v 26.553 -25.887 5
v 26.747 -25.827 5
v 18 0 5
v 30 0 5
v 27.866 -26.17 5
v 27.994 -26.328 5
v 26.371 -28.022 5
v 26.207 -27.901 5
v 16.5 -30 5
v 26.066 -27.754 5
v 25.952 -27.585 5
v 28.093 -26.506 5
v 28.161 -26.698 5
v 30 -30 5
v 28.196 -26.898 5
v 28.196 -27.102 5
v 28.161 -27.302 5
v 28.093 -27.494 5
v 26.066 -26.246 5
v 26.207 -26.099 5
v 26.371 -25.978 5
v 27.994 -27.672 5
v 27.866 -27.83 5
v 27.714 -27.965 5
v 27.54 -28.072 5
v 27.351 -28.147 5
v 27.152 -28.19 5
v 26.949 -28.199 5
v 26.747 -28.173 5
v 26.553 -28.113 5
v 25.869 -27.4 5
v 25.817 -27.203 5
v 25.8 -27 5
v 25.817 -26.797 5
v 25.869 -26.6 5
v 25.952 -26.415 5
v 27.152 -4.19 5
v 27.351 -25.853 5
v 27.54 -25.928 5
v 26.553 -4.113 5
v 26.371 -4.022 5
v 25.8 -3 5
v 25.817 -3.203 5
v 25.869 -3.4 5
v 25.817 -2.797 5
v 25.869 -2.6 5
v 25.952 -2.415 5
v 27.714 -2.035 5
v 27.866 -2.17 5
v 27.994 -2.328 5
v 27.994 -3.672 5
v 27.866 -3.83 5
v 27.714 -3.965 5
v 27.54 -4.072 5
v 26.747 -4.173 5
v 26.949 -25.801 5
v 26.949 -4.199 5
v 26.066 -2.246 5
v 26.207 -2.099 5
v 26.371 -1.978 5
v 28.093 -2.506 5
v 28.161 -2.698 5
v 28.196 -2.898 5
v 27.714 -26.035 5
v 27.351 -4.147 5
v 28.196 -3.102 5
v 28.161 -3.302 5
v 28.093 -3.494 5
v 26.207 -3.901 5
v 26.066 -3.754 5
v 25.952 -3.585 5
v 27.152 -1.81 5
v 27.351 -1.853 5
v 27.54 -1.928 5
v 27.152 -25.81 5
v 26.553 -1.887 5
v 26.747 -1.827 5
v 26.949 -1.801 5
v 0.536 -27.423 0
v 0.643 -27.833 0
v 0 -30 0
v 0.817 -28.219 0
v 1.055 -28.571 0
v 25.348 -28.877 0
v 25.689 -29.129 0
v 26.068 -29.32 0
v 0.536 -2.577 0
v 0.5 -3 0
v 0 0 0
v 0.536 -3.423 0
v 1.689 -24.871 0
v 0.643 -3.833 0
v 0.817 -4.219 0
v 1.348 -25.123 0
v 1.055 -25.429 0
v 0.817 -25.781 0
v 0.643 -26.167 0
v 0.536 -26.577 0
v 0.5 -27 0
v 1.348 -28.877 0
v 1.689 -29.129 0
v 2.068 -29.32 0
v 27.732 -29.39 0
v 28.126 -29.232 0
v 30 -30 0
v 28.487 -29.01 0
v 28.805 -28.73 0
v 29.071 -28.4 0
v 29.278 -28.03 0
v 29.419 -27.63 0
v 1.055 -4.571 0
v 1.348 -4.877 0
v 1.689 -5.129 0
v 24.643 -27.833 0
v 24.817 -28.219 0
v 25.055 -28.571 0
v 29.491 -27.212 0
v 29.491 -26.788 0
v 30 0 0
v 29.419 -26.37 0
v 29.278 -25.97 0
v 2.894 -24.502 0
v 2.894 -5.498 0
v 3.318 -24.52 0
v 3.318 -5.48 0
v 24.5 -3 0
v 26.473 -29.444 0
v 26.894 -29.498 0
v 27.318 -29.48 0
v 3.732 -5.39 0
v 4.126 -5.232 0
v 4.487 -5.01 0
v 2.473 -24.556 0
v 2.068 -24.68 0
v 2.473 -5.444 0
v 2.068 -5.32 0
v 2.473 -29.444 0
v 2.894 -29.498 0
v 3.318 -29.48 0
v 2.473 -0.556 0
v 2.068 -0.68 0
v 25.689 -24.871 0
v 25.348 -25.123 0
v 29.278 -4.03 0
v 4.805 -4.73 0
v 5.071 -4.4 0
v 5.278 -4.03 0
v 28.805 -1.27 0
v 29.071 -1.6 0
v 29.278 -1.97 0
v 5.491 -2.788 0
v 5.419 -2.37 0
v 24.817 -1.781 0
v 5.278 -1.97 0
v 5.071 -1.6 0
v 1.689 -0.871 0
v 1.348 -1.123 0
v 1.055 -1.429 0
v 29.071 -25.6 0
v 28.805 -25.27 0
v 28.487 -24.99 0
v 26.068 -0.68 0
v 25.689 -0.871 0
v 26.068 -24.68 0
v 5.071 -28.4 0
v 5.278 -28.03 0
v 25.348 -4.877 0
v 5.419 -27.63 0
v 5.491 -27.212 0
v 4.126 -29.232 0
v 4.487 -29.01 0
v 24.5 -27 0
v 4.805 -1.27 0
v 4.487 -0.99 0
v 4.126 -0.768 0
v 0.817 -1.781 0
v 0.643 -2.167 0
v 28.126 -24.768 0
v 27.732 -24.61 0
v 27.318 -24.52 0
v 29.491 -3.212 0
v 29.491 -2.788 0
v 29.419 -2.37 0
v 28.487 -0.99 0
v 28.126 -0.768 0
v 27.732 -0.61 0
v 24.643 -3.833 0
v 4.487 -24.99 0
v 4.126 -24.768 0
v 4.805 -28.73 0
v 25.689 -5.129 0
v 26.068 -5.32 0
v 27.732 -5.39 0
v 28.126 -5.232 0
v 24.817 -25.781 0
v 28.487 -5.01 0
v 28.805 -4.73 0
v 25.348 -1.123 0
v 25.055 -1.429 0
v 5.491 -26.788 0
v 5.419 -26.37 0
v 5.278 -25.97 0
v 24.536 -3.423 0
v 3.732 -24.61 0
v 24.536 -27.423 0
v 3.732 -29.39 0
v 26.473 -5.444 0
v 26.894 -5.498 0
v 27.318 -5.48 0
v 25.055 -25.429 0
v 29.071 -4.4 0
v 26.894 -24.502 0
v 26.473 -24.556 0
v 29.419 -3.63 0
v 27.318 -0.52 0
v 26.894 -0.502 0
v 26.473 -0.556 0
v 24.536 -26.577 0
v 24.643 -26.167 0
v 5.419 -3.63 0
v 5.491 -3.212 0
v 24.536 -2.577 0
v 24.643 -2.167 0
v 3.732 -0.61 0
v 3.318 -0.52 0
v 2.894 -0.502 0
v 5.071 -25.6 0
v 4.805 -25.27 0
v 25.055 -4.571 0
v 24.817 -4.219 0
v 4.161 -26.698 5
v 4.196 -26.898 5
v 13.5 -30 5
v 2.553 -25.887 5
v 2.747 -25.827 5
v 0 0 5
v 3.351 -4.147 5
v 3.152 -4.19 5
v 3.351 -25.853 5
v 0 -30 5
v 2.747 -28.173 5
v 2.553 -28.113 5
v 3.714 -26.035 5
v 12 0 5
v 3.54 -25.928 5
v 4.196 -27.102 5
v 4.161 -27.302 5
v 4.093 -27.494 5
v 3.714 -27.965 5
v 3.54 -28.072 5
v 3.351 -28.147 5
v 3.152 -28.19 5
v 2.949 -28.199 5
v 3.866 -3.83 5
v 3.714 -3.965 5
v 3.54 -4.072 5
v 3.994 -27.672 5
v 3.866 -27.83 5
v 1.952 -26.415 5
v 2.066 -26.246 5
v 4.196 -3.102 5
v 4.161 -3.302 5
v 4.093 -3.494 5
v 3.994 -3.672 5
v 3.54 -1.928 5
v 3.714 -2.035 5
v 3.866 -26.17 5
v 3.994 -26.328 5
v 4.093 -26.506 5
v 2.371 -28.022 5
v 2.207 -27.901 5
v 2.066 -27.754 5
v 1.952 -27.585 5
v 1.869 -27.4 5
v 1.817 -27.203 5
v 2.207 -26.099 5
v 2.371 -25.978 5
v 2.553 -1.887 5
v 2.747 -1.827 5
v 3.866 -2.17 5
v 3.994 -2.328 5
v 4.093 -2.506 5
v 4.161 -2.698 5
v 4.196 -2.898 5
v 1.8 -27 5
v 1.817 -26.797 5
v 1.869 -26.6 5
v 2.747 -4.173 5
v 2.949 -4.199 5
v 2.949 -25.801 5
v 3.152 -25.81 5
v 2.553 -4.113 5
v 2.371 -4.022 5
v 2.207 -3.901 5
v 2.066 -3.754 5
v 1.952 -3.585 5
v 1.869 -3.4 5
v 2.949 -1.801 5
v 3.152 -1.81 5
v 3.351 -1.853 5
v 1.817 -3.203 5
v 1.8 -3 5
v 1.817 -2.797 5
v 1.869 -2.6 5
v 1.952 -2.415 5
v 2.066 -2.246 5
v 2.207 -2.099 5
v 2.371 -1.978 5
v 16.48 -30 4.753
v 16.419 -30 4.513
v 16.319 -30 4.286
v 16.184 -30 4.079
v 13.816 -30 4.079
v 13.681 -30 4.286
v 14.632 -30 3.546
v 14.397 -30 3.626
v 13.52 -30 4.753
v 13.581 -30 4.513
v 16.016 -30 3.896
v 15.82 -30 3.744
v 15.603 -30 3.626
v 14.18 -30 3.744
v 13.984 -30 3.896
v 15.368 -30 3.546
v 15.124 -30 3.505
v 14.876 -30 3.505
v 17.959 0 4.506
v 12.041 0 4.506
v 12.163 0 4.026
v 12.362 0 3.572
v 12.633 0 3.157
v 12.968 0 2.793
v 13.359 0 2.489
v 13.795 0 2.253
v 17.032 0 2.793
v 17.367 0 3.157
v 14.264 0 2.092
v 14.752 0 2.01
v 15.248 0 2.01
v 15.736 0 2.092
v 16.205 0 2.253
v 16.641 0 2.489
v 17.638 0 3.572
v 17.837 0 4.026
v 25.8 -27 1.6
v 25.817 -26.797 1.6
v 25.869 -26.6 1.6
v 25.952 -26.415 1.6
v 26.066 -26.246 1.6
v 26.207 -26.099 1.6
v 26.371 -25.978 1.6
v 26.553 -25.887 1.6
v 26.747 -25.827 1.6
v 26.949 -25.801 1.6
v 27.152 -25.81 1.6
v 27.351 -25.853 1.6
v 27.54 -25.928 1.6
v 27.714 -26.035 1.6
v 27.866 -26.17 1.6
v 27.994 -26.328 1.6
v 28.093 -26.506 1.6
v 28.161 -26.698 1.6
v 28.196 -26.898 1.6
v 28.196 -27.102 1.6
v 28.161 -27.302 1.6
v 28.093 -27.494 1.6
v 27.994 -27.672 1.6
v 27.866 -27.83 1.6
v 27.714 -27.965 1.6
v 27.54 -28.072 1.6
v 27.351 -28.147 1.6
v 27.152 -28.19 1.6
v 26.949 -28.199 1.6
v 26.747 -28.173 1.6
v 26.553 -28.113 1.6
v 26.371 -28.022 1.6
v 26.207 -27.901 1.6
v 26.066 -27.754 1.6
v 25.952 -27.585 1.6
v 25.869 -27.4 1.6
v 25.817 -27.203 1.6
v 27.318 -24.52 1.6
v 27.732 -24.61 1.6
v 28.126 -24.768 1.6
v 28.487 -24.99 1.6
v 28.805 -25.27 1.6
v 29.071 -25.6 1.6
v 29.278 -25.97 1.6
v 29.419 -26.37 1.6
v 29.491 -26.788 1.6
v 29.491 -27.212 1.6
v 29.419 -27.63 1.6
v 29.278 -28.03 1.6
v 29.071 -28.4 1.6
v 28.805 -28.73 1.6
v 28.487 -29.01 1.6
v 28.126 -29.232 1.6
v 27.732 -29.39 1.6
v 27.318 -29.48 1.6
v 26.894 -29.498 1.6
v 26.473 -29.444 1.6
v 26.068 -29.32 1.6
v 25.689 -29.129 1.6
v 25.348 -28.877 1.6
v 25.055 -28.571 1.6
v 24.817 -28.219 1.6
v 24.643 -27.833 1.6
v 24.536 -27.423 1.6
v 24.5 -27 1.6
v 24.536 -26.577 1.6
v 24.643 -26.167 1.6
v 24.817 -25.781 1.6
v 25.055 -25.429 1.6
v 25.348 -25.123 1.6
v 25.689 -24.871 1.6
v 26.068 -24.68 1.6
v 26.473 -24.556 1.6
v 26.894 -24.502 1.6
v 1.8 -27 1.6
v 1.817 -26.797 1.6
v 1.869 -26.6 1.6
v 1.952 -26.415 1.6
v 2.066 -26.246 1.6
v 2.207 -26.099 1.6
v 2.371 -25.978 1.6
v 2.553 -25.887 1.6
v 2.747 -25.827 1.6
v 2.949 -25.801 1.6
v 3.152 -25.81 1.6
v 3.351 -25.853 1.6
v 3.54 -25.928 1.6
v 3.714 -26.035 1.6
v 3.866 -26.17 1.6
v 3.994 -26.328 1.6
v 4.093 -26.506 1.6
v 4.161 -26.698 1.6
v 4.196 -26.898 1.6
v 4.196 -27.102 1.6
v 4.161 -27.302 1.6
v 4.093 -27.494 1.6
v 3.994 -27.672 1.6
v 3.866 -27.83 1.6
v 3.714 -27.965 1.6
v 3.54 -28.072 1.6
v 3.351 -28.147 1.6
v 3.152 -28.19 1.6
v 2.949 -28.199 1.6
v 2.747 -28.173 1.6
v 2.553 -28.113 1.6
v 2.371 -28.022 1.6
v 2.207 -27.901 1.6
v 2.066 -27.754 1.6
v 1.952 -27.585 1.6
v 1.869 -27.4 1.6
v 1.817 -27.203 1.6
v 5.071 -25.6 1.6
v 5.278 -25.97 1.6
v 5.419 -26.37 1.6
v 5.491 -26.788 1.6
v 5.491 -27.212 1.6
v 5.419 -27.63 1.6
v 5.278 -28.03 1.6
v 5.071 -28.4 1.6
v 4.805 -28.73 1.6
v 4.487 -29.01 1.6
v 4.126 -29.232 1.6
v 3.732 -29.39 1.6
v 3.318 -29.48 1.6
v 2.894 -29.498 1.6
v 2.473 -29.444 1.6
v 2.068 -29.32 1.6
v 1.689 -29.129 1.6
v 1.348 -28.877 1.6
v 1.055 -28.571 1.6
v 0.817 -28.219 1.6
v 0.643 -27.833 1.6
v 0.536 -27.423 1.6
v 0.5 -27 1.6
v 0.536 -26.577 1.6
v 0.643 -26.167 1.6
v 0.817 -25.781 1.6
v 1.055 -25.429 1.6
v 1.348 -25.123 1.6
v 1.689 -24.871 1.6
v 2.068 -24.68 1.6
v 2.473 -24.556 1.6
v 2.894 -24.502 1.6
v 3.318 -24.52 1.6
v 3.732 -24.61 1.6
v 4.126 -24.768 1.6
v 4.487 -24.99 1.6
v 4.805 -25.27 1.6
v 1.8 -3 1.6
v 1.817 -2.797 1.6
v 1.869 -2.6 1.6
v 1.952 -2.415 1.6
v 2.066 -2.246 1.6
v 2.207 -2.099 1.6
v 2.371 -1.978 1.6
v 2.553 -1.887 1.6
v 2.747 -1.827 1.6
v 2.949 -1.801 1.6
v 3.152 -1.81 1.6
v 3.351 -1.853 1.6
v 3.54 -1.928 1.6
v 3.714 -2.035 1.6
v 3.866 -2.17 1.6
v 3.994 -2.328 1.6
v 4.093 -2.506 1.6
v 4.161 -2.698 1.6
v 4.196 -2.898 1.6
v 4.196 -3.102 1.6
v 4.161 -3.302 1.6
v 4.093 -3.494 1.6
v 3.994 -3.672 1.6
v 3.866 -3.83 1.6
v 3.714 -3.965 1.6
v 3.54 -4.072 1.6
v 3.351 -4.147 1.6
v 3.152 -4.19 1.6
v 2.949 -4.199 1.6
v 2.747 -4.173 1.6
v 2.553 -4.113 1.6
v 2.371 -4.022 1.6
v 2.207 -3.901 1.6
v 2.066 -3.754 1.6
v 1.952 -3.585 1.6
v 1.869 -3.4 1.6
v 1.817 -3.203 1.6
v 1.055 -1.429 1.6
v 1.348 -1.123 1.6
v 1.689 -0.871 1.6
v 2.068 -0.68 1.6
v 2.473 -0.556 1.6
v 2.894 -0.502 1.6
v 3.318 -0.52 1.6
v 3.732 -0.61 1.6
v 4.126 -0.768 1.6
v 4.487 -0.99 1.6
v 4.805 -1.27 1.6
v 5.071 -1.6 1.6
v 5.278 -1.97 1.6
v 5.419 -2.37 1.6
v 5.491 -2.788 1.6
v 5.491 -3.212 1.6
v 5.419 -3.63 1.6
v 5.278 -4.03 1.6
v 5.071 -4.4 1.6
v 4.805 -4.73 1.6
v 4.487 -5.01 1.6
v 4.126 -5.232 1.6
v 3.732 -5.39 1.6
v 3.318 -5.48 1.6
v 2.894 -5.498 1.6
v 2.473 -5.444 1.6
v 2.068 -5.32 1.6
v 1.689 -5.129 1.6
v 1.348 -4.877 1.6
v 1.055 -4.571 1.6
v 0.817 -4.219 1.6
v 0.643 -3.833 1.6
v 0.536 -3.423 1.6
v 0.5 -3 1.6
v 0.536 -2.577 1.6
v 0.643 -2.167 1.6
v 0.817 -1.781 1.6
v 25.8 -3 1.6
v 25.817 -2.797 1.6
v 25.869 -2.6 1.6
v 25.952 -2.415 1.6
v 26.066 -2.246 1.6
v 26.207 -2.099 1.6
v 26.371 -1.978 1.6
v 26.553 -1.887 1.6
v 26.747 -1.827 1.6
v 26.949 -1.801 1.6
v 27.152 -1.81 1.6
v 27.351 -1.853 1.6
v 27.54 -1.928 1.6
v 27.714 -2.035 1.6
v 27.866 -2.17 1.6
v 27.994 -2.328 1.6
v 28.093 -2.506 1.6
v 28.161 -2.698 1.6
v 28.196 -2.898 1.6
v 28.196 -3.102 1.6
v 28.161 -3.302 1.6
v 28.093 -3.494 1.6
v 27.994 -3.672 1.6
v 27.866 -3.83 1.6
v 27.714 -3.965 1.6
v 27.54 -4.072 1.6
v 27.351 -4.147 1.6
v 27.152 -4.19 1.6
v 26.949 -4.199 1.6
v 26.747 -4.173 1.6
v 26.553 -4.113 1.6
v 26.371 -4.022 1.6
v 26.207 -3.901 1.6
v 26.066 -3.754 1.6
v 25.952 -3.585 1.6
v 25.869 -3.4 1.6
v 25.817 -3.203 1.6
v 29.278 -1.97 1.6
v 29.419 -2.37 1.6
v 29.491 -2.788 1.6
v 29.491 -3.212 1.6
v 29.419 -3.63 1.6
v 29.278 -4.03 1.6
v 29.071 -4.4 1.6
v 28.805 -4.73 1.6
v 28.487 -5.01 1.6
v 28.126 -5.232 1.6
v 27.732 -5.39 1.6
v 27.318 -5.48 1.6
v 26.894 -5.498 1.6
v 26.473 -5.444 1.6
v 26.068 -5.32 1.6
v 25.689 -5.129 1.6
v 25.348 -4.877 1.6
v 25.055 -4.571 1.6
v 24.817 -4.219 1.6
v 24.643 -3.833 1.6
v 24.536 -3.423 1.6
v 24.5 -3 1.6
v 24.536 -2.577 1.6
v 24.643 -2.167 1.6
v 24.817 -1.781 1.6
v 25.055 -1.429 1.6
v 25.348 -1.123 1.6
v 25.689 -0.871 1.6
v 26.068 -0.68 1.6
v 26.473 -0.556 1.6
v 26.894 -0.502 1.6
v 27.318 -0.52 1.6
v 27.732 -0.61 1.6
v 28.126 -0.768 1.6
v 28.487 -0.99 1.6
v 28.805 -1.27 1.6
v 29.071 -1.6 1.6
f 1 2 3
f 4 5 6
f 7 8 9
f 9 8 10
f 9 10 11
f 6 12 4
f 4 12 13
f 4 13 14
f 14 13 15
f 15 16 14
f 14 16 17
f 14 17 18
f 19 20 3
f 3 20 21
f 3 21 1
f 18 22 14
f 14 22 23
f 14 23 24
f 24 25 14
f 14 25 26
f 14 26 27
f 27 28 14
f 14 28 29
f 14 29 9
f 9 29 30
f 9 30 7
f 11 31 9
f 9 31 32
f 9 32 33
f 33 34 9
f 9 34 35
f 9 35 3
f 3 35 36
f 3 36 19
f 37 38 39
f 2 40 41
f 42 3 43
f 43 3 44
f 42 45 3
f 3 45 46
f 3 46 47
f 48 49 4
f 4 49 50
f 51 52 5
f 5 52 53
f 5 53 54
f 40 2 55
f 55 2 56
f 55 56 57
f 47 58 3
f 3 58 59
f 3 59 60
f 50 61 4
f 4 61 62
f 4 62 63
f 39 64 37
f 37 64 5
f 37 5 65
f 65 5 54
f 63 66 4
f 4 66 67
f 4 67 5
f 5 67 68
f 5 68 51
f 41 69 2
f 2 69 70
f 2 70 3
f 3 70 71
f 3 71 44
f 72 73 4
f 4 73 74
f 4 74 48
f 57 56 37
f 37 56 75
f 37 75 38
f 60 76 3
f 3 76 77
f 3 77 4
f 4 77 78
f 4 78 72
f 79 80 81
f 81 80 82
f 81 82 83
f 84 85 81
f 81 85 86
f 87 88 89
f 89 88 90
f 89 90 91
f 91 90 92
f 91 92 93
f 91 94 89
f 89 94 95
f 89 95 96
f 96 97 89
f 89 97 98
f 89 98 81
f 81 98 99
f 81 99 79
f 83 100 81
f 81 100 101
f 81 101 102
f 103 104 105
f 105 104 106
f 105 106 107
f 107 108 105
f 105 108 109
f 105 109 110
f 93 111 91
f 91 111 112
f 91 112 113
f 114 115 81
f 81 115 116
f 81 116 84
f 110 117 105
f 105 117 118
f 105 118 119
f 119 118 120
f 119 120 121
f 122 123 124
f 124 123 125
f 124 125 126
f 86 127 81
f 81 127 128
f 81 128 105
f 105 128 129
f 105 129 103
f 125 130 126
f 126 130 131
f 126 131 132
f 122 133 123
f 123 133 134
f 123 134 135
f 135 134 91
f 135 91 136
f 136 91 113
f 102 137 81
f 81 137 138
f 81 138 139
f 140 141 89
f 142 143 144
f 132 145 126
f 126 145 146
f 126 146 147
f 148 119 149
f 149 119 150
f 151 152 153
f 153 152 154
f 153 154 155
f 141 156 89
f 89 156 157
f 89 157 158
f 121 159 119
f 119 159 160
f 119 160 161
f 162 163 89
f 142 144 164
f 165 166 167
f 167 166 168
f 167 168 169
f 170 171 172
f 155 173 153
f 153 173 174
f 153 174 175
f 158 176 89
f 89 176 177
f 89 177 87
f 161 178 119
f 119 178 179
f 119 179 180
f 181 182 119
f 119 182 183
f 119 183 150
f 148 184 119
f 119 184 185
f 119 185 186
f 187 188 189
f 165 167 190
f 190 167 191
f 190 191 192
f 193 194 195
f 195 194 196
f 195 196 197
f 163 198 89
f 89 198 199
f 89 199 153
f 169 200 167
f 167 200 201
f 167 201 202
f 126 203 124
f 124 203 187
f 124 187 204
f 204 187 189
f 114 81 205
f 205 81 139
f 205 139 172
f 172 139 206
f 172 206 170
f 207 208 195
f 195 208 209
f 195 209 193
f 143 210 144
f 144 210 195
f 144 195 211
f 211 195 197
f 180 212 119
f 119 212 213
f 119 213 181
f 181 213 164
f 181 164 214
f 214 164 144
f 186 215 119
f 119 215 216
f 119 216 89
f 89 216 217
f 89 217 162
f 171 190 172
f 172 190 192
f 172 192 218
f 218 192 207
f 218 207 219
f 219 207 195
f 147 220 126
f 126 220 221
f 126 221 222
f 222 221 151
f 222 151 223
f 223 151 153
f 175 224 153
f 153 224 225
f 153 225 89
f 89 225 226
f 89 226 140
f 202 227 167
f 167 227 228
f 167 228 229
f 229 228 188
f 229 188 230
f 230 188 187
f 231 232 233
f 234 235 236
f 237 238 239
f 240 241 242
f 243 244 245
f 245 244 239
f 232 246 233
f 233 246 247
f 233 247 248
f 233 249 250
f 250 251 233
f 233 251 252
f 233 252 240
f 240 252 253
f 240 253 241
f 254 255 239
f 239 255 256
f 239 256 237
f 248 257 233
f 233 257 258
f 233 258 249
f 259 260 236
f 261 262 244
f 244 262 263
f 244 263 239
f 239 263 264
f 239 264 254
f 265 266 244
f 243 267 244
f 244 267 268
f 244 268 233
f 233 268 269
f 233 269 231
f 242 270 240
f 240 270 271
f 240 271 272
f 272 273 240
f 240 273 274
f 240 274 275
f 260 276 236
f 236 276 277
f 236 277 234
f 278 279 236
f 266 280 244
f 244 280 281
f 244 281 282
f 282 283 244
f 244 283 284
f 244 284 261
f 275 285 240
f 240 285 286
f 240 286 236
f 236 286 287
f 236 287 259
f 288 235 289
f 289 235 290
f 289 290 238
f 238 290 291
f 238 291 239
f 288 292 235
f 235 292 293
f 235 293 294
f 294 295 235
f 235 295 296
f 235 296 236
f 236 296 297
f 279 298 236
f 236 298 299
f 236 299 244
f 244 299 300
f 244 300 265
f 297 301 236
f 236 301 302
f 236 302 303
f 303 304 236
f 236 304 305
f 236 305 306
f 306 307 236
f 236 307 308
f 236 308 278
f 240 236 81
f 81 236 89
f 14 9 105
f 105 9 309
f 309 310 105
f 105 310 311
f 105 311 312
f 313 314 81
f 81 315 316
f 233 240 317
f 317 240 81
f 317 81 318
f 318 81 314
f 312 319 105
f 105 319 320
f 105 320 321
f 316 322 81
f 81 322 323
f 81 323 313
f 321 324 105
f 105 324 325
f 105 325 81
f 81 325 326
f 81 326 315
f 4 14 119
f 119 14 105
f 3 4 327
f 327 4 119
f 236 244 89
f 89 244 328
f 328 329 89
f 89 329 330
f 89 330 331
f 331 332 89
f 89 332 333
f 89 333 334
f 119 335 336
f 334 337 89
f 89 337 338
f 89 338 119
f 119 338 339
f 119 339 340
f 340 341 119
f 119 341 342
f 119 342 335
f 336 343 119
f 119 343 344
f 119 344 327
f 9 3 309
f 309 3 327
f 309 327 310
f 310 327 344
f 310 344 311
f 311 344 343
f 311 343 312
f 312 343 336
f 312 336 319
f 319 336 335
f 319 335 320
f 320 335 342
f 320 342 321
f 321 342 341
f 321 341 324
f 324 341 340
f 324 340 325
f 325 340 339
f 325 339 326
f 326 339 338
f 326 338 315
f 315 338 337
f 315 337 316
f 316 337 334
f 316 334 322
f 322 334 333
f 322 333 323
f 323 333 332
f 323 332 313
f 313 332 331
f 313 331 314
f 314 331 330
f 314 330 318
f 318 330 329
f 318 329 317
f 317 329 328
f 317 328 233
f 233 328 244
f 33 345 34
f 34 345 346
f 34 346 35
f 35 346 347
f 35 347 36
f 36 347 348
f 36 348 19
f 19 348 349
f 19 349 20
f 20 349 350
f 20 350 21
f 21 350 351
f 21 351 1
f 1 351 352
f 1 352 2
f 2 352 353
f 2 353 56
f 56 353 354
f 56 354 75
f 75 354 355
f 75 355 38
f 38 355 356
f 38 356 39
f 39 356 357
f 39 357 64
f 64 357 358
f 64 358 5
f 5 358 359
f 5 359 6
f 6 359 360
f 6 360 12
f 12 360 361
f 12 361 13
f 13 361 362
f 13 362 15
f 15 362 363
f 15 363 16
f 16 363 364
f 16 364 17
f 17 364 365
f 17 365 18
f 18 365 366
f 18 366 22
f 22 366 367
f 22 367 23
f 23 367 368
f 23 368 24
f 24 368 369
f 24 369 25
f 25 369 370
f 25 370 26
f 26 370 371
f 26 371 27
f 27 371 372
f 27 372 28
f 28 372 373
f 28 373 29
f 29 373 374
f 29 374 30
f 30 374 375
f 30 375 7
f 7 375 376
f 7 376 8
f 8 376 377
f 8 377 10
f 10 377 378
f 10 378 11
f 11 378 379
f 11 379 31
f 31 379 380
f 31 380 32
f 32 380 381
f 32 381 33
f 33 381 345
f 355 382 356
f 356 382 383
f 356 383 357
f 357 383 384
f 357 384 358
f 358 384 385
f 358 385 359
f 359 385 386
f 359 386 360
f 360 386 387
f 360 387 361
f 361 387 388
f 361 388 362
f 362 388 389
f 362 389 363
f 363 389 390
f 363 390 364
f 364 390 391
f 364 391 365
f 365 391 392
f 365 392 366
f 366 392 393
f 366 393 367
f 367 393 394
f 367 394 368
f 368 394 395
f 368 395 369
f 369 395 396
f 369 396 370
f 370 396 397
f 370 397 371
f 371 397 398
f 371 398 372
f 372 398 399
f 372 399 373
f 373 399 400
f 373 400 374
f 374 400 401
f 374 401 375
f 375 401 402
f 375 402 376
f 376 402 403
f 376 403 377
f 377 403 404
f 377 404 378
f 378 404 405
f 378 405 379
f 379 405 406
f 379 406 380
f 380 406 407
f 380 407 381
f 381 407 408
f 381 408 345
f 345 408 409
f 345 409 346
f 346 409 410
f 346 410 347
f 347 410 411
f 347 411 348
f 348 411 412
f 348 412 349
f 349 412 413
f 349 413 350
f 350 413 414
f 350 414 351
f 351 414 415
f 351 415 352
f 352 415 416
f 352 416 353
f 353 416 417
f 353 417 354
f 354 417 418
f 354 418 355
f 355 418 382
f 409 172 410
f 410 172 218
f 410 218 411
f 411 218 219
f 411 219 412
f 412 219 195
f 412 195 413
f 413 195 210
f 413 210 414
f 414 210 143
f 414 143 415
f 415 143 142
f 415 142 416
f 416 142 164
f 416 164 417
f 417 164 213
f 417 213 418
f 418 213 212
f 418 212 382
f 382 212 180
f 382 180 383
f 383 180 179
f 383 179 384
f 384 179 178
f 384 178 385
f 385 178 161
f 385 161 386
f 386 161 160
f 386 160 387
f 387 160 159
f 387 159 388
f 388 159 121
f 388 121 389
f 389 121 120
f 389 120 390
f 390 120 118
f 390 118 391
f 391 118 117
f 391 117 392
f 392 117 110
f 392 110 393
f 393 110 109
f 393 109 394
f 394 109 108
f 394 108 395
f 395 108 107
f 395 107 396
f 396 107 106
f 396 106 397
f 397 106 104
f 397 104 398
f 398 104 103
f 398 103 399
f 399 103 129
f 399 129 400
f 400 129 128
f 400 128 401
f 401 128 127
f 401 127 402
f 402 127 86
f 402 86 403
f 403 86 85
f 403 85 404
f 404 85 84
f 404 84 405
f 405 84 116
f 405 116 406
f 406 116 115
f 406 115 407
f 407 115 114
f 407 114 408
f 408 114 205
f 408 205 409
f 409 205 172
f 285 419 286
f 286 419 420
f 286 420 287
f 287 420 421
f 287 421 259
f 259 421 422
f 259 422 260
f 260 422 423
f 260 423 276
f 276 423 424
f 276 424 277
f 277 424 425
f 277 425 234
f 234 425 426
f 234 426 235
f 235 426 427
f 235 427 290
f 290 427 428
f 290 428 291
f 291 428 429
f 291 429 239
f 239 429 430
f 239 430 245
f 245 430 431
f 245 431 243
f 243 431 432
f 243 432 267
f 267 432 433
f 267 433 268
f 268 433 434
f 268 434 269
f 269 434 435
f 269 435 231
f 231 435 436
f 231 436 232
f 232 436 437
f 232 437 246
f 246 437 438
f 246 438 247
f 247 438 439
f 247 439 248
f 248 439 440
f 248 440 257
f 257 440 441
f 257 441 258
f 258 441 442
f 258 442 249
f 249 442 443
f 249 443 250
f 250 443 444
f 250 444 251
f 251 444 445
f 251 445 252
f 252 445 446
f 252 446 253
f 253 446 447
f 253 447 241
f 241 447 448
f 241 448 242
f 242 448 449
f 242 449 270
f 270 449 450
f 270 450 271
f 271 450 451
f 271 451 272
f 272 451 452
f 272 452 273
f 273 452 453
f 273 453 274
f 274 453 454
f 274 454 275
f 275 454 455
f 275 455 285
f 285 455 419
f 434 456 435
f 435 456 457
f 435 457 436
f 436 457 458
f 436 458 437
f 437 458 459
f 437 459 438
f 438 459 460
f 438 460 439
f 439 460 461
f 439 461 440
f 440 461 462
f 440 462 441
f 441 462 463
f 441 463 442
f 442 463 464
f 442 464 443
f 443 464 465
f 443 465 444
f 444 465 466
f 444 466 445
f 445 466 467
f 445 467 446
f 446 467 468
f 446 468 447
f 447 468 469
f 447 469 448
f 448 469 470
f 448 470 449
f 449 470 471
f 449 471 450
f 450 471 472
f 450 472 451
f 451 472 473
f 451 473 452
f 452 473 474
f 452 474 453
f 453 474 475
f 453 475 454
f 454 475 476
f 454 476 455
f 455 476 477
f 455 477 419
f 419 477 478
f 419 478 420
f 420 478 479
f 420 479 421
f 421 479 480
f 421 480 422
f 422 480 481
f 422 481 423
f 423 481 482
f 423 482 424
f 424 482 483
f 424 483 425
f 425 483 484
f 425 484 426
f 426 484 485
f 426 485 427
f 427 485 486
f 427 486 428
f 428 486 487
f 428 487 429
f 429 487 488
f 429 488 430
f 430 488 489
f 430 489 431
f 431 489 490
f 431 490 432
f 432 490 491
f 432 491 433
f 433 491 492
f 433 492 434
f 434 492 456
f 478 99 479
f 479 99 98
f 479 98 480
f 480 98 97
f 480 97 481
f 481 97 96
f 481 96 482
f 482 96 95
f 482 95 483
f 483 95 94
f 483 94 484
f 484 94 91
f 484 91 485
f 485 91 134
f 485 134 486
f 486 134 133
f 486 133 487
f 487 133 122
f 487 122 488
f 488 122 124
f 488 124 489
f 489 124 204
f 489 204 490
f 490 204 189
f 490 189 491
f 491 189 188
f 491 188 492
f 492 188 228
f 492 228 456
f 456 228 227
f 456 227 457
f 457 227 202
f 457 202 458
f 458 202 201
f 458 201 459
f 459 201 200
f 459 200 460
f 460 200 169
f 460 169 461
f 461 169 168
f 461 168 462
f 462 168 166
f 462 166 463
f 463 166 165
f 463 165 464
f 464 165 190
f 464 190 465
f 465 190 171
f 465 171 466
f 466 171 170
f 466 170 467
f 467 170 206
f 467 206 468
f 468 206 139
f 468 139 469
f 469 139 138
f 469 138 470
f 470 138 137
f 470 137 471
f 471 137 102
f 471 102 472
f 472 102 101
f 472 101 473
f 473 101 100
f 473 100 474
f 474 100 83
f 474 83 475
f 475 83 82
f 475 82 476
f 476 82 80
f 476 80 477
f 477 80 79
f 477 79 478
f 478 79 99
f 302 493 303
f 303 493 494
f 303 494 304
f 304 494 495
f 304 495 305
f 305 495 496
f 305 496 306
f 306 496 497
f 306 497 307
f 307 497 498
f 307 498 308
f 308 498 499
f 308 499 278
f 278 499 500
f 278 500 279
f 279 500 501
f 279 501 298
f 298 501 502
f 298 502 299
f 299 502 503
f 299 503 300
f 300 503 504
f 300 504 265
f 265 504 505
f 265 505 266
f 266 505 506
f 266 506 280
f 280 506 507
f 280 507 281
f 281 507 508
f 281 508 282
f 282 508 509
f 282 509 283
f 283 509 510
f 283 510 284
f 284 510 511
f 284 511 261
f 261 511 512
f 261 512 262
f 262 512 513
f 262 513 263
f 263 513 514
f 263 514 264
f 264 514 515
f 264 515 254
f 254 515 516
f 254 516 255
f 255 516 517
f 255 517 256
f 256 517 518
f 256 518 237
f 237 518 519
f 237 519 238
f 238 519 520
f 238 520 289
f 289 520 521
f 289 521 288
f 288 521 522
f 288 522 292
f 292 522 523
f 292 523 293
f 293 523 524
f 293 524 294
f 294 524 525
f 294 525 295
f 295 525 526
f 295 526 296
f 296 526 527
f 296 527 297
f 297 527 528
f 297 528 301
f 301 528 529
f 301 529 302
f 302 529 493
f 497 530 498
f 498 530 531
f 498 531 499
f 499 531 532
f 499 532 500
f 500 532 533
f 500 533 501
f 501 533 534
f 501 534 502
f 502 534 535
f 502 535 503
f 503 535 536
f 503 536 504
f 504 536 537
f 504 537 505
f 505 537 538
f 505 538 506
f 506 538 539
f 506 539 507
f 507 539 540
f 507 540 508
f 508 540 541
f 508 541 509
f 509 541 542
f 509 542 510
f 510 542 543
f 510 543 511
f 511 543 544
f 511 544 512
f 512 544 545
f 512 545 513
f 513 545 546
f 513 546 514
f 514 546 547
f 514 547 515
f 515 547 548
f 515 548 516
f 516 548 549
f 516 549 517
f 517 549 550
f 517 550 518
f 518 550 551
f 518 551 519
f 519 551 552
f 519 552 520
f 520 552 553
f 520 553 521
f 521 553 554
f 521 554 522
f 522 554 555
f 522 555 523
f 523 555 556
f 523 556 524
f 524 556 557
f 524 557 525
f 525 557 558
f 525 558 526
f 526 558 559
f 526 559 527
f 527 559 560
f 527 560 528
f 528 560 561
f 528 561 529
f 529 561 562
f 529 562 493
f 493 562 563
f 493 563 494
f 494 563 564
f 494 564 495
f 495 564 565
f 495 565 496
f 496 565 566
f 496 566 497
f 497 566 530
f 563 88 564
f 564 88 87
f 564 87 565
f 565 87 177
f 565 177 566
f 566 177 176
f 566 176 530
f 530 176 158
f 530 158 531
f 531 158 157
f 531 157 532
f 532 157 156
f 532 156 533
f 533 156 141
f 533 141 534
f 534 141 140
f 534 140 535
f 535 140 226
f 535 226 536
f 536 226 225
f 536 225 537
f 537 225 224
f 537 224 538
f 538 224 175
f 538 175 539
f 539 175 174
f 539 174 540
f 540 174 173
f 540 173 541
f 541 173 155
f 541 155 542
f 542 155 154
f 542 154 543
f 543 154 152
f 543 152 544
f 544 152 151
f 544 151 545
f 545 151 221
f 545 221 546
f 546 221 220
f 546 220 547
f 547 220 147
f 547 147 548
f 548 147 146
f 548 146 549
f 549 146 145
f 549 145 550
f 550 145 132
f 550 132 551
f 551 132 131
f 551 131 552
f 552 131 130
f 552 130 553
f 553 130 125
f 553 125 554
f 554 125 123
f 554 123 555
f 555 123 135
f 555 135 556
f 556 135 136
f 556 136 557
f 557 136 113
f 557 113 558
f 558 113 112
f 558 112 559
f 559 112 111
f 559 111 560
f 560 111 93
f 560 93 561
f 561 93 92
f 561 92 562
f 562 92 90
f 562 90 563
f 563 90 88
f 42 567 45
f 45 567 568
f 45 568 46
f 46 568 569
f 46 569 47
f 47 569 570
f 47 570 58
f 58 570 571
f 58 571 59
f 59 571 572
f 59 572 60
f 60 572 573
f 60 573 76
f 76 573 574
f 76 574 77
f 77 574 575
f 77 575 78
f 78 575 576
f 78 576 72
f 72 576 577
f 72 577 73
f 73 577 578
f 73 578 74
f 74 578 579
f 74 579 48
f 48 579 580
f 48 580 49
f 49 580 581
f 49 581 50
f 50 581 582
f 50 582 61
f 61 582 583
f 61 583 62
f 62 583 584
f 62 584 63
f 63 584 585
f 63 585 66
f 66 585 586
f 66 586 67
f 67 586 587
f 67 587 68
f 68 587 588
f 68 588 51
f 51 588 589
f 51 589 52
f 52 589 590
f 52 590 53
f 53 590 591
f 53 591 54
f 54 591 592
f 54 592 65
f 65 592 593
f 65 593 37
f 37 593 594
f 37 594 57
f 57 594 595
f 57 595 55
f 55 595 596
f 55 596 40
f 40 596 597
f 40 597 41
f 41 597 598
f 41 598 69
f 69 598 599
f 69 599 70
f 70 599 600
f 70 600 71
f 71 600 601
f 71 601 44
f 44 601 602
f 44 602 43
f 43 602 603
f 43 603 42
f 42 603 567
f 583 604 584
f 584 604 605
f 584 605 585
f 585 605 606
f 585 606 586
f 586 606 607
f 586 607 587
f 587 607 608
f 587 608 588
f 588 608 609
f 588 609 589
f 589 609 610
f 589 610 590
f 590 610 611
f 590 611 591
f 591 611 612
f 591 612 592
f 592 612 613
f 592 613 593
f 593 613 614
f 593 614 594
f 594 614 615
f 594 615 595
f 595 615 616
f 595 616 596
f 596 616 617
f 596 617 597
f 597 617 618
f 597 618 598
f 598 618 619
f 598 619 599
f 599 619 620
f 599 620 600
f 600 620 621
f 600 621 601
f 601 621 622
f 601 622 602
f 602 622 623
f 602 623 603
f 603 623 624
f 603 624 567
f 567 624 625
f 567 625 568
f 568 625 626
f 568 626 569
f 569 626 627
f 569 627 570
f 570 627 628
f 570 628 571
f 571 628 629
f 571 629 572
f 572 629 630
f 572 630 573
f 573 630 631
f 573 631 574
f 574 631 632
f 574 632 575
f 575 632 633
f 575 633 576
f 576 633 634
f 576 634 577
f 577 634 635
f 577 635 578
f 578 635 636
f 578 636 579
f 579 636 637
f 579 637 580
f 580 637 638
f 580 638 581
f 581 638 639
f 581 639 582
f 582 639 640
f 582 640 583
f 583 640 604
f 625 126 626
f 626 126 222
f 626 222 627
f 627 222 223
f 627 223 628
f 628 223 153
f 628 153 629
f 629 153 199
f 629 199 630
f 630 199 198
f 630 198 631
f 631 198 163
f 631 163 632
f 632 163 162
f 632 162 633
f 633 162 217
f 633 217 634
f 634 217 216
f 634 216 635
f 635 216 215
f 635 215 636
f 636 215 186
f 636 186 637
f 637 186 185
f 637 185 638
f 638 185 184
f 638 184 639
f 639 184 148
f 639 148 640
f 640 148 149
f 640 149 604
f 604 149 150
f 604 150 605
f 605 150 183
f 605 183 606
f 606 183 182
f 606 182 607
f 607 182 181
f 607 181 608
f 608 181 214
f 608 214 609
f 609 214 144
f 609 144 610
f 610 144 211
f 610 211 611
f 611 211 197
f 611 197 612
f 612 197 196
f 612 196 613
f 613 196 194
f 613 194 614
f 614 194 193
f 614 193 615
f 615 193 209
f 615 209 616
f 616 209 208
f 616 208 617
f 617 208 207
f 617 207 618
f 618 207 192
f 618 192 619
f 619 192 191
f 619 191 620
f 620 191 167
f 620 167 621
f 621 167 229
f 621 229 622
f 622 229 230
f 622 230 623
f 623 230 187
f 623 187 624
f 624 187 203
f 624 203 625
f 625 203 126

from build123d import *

# Parameters (mm, degrees)
SKETCH1_W                                        = 30
SKETCH1_H                                        = 30
BOSS_EXTRUDE1_DEPTH                              = 5
CBORE_FOR_M2_PAN_HEAD_MACHINE_SCREW1_D           = 2.4
CBORE_FOR_M2_PAN_HEAD_MACHINE_SCREW1_CBORE_D     = 5
CBORE_FOR_M2_PAN_HEAD_MACHINE_SCREW1_CBORE_DEPTH = 1.6


with BuildPart() as part:
    # Sketch1 → Boss-Extrude1 (new body)
    with BuildSketch(Plane.XY):
        with Locations((15, -15)):
            Rectangle(SKETCH1_W, SKETCH1_H)
    extrude(amount=BOSS_EXTRUDE1_DEPTH)

    # Sketch2 → Cut-Loft1 section 0
    with BuildSketch(Plane(origin=(0, 0, 0), x_dir=(1, 0, 0), z_dir=(0, 1, 0))):
        with BuildLine():
            Line((12, -5), (18, -5))
            ThreePointArc((18, -5), (15, -2), (12, -5))
        make_face()
    # Sketch3 → Cut-Loft1 section 1
    with BuildSketch(Plane.XZ.offset(30)):
        with BuildLine():
            Line((13.5, 5), (16.5, 5))
            ThreePointArc((16.5, 5), (15, 3.5), (13.5, 5))
        make_face()
    loft(mode=Mode.SUBTRACT)

    # CBORE for M2 Pan Head Machine Screw1 (through all)
    with Locations(Plane(origin=(0, 0, 0), x_dir=(-1, 0, 0), z_dir=(0, 0, -1))):
        with Locations((-27, -3), (-3, -3), (-3, -27), (-27, -27)):
            CounterBoreHole(CBORE_FOR_M2_PAN_HEAD_MACHINE_SCREW1_D / 2, CBORE_FOR_M2_PAN_HEAD_MACHINE_SCREW1_CBORE_D / 2, CBORE_FOR_M2_PAN_HEAD_MACHINE_SCREW1_CBORE_DEPTH)


solid = part.part
